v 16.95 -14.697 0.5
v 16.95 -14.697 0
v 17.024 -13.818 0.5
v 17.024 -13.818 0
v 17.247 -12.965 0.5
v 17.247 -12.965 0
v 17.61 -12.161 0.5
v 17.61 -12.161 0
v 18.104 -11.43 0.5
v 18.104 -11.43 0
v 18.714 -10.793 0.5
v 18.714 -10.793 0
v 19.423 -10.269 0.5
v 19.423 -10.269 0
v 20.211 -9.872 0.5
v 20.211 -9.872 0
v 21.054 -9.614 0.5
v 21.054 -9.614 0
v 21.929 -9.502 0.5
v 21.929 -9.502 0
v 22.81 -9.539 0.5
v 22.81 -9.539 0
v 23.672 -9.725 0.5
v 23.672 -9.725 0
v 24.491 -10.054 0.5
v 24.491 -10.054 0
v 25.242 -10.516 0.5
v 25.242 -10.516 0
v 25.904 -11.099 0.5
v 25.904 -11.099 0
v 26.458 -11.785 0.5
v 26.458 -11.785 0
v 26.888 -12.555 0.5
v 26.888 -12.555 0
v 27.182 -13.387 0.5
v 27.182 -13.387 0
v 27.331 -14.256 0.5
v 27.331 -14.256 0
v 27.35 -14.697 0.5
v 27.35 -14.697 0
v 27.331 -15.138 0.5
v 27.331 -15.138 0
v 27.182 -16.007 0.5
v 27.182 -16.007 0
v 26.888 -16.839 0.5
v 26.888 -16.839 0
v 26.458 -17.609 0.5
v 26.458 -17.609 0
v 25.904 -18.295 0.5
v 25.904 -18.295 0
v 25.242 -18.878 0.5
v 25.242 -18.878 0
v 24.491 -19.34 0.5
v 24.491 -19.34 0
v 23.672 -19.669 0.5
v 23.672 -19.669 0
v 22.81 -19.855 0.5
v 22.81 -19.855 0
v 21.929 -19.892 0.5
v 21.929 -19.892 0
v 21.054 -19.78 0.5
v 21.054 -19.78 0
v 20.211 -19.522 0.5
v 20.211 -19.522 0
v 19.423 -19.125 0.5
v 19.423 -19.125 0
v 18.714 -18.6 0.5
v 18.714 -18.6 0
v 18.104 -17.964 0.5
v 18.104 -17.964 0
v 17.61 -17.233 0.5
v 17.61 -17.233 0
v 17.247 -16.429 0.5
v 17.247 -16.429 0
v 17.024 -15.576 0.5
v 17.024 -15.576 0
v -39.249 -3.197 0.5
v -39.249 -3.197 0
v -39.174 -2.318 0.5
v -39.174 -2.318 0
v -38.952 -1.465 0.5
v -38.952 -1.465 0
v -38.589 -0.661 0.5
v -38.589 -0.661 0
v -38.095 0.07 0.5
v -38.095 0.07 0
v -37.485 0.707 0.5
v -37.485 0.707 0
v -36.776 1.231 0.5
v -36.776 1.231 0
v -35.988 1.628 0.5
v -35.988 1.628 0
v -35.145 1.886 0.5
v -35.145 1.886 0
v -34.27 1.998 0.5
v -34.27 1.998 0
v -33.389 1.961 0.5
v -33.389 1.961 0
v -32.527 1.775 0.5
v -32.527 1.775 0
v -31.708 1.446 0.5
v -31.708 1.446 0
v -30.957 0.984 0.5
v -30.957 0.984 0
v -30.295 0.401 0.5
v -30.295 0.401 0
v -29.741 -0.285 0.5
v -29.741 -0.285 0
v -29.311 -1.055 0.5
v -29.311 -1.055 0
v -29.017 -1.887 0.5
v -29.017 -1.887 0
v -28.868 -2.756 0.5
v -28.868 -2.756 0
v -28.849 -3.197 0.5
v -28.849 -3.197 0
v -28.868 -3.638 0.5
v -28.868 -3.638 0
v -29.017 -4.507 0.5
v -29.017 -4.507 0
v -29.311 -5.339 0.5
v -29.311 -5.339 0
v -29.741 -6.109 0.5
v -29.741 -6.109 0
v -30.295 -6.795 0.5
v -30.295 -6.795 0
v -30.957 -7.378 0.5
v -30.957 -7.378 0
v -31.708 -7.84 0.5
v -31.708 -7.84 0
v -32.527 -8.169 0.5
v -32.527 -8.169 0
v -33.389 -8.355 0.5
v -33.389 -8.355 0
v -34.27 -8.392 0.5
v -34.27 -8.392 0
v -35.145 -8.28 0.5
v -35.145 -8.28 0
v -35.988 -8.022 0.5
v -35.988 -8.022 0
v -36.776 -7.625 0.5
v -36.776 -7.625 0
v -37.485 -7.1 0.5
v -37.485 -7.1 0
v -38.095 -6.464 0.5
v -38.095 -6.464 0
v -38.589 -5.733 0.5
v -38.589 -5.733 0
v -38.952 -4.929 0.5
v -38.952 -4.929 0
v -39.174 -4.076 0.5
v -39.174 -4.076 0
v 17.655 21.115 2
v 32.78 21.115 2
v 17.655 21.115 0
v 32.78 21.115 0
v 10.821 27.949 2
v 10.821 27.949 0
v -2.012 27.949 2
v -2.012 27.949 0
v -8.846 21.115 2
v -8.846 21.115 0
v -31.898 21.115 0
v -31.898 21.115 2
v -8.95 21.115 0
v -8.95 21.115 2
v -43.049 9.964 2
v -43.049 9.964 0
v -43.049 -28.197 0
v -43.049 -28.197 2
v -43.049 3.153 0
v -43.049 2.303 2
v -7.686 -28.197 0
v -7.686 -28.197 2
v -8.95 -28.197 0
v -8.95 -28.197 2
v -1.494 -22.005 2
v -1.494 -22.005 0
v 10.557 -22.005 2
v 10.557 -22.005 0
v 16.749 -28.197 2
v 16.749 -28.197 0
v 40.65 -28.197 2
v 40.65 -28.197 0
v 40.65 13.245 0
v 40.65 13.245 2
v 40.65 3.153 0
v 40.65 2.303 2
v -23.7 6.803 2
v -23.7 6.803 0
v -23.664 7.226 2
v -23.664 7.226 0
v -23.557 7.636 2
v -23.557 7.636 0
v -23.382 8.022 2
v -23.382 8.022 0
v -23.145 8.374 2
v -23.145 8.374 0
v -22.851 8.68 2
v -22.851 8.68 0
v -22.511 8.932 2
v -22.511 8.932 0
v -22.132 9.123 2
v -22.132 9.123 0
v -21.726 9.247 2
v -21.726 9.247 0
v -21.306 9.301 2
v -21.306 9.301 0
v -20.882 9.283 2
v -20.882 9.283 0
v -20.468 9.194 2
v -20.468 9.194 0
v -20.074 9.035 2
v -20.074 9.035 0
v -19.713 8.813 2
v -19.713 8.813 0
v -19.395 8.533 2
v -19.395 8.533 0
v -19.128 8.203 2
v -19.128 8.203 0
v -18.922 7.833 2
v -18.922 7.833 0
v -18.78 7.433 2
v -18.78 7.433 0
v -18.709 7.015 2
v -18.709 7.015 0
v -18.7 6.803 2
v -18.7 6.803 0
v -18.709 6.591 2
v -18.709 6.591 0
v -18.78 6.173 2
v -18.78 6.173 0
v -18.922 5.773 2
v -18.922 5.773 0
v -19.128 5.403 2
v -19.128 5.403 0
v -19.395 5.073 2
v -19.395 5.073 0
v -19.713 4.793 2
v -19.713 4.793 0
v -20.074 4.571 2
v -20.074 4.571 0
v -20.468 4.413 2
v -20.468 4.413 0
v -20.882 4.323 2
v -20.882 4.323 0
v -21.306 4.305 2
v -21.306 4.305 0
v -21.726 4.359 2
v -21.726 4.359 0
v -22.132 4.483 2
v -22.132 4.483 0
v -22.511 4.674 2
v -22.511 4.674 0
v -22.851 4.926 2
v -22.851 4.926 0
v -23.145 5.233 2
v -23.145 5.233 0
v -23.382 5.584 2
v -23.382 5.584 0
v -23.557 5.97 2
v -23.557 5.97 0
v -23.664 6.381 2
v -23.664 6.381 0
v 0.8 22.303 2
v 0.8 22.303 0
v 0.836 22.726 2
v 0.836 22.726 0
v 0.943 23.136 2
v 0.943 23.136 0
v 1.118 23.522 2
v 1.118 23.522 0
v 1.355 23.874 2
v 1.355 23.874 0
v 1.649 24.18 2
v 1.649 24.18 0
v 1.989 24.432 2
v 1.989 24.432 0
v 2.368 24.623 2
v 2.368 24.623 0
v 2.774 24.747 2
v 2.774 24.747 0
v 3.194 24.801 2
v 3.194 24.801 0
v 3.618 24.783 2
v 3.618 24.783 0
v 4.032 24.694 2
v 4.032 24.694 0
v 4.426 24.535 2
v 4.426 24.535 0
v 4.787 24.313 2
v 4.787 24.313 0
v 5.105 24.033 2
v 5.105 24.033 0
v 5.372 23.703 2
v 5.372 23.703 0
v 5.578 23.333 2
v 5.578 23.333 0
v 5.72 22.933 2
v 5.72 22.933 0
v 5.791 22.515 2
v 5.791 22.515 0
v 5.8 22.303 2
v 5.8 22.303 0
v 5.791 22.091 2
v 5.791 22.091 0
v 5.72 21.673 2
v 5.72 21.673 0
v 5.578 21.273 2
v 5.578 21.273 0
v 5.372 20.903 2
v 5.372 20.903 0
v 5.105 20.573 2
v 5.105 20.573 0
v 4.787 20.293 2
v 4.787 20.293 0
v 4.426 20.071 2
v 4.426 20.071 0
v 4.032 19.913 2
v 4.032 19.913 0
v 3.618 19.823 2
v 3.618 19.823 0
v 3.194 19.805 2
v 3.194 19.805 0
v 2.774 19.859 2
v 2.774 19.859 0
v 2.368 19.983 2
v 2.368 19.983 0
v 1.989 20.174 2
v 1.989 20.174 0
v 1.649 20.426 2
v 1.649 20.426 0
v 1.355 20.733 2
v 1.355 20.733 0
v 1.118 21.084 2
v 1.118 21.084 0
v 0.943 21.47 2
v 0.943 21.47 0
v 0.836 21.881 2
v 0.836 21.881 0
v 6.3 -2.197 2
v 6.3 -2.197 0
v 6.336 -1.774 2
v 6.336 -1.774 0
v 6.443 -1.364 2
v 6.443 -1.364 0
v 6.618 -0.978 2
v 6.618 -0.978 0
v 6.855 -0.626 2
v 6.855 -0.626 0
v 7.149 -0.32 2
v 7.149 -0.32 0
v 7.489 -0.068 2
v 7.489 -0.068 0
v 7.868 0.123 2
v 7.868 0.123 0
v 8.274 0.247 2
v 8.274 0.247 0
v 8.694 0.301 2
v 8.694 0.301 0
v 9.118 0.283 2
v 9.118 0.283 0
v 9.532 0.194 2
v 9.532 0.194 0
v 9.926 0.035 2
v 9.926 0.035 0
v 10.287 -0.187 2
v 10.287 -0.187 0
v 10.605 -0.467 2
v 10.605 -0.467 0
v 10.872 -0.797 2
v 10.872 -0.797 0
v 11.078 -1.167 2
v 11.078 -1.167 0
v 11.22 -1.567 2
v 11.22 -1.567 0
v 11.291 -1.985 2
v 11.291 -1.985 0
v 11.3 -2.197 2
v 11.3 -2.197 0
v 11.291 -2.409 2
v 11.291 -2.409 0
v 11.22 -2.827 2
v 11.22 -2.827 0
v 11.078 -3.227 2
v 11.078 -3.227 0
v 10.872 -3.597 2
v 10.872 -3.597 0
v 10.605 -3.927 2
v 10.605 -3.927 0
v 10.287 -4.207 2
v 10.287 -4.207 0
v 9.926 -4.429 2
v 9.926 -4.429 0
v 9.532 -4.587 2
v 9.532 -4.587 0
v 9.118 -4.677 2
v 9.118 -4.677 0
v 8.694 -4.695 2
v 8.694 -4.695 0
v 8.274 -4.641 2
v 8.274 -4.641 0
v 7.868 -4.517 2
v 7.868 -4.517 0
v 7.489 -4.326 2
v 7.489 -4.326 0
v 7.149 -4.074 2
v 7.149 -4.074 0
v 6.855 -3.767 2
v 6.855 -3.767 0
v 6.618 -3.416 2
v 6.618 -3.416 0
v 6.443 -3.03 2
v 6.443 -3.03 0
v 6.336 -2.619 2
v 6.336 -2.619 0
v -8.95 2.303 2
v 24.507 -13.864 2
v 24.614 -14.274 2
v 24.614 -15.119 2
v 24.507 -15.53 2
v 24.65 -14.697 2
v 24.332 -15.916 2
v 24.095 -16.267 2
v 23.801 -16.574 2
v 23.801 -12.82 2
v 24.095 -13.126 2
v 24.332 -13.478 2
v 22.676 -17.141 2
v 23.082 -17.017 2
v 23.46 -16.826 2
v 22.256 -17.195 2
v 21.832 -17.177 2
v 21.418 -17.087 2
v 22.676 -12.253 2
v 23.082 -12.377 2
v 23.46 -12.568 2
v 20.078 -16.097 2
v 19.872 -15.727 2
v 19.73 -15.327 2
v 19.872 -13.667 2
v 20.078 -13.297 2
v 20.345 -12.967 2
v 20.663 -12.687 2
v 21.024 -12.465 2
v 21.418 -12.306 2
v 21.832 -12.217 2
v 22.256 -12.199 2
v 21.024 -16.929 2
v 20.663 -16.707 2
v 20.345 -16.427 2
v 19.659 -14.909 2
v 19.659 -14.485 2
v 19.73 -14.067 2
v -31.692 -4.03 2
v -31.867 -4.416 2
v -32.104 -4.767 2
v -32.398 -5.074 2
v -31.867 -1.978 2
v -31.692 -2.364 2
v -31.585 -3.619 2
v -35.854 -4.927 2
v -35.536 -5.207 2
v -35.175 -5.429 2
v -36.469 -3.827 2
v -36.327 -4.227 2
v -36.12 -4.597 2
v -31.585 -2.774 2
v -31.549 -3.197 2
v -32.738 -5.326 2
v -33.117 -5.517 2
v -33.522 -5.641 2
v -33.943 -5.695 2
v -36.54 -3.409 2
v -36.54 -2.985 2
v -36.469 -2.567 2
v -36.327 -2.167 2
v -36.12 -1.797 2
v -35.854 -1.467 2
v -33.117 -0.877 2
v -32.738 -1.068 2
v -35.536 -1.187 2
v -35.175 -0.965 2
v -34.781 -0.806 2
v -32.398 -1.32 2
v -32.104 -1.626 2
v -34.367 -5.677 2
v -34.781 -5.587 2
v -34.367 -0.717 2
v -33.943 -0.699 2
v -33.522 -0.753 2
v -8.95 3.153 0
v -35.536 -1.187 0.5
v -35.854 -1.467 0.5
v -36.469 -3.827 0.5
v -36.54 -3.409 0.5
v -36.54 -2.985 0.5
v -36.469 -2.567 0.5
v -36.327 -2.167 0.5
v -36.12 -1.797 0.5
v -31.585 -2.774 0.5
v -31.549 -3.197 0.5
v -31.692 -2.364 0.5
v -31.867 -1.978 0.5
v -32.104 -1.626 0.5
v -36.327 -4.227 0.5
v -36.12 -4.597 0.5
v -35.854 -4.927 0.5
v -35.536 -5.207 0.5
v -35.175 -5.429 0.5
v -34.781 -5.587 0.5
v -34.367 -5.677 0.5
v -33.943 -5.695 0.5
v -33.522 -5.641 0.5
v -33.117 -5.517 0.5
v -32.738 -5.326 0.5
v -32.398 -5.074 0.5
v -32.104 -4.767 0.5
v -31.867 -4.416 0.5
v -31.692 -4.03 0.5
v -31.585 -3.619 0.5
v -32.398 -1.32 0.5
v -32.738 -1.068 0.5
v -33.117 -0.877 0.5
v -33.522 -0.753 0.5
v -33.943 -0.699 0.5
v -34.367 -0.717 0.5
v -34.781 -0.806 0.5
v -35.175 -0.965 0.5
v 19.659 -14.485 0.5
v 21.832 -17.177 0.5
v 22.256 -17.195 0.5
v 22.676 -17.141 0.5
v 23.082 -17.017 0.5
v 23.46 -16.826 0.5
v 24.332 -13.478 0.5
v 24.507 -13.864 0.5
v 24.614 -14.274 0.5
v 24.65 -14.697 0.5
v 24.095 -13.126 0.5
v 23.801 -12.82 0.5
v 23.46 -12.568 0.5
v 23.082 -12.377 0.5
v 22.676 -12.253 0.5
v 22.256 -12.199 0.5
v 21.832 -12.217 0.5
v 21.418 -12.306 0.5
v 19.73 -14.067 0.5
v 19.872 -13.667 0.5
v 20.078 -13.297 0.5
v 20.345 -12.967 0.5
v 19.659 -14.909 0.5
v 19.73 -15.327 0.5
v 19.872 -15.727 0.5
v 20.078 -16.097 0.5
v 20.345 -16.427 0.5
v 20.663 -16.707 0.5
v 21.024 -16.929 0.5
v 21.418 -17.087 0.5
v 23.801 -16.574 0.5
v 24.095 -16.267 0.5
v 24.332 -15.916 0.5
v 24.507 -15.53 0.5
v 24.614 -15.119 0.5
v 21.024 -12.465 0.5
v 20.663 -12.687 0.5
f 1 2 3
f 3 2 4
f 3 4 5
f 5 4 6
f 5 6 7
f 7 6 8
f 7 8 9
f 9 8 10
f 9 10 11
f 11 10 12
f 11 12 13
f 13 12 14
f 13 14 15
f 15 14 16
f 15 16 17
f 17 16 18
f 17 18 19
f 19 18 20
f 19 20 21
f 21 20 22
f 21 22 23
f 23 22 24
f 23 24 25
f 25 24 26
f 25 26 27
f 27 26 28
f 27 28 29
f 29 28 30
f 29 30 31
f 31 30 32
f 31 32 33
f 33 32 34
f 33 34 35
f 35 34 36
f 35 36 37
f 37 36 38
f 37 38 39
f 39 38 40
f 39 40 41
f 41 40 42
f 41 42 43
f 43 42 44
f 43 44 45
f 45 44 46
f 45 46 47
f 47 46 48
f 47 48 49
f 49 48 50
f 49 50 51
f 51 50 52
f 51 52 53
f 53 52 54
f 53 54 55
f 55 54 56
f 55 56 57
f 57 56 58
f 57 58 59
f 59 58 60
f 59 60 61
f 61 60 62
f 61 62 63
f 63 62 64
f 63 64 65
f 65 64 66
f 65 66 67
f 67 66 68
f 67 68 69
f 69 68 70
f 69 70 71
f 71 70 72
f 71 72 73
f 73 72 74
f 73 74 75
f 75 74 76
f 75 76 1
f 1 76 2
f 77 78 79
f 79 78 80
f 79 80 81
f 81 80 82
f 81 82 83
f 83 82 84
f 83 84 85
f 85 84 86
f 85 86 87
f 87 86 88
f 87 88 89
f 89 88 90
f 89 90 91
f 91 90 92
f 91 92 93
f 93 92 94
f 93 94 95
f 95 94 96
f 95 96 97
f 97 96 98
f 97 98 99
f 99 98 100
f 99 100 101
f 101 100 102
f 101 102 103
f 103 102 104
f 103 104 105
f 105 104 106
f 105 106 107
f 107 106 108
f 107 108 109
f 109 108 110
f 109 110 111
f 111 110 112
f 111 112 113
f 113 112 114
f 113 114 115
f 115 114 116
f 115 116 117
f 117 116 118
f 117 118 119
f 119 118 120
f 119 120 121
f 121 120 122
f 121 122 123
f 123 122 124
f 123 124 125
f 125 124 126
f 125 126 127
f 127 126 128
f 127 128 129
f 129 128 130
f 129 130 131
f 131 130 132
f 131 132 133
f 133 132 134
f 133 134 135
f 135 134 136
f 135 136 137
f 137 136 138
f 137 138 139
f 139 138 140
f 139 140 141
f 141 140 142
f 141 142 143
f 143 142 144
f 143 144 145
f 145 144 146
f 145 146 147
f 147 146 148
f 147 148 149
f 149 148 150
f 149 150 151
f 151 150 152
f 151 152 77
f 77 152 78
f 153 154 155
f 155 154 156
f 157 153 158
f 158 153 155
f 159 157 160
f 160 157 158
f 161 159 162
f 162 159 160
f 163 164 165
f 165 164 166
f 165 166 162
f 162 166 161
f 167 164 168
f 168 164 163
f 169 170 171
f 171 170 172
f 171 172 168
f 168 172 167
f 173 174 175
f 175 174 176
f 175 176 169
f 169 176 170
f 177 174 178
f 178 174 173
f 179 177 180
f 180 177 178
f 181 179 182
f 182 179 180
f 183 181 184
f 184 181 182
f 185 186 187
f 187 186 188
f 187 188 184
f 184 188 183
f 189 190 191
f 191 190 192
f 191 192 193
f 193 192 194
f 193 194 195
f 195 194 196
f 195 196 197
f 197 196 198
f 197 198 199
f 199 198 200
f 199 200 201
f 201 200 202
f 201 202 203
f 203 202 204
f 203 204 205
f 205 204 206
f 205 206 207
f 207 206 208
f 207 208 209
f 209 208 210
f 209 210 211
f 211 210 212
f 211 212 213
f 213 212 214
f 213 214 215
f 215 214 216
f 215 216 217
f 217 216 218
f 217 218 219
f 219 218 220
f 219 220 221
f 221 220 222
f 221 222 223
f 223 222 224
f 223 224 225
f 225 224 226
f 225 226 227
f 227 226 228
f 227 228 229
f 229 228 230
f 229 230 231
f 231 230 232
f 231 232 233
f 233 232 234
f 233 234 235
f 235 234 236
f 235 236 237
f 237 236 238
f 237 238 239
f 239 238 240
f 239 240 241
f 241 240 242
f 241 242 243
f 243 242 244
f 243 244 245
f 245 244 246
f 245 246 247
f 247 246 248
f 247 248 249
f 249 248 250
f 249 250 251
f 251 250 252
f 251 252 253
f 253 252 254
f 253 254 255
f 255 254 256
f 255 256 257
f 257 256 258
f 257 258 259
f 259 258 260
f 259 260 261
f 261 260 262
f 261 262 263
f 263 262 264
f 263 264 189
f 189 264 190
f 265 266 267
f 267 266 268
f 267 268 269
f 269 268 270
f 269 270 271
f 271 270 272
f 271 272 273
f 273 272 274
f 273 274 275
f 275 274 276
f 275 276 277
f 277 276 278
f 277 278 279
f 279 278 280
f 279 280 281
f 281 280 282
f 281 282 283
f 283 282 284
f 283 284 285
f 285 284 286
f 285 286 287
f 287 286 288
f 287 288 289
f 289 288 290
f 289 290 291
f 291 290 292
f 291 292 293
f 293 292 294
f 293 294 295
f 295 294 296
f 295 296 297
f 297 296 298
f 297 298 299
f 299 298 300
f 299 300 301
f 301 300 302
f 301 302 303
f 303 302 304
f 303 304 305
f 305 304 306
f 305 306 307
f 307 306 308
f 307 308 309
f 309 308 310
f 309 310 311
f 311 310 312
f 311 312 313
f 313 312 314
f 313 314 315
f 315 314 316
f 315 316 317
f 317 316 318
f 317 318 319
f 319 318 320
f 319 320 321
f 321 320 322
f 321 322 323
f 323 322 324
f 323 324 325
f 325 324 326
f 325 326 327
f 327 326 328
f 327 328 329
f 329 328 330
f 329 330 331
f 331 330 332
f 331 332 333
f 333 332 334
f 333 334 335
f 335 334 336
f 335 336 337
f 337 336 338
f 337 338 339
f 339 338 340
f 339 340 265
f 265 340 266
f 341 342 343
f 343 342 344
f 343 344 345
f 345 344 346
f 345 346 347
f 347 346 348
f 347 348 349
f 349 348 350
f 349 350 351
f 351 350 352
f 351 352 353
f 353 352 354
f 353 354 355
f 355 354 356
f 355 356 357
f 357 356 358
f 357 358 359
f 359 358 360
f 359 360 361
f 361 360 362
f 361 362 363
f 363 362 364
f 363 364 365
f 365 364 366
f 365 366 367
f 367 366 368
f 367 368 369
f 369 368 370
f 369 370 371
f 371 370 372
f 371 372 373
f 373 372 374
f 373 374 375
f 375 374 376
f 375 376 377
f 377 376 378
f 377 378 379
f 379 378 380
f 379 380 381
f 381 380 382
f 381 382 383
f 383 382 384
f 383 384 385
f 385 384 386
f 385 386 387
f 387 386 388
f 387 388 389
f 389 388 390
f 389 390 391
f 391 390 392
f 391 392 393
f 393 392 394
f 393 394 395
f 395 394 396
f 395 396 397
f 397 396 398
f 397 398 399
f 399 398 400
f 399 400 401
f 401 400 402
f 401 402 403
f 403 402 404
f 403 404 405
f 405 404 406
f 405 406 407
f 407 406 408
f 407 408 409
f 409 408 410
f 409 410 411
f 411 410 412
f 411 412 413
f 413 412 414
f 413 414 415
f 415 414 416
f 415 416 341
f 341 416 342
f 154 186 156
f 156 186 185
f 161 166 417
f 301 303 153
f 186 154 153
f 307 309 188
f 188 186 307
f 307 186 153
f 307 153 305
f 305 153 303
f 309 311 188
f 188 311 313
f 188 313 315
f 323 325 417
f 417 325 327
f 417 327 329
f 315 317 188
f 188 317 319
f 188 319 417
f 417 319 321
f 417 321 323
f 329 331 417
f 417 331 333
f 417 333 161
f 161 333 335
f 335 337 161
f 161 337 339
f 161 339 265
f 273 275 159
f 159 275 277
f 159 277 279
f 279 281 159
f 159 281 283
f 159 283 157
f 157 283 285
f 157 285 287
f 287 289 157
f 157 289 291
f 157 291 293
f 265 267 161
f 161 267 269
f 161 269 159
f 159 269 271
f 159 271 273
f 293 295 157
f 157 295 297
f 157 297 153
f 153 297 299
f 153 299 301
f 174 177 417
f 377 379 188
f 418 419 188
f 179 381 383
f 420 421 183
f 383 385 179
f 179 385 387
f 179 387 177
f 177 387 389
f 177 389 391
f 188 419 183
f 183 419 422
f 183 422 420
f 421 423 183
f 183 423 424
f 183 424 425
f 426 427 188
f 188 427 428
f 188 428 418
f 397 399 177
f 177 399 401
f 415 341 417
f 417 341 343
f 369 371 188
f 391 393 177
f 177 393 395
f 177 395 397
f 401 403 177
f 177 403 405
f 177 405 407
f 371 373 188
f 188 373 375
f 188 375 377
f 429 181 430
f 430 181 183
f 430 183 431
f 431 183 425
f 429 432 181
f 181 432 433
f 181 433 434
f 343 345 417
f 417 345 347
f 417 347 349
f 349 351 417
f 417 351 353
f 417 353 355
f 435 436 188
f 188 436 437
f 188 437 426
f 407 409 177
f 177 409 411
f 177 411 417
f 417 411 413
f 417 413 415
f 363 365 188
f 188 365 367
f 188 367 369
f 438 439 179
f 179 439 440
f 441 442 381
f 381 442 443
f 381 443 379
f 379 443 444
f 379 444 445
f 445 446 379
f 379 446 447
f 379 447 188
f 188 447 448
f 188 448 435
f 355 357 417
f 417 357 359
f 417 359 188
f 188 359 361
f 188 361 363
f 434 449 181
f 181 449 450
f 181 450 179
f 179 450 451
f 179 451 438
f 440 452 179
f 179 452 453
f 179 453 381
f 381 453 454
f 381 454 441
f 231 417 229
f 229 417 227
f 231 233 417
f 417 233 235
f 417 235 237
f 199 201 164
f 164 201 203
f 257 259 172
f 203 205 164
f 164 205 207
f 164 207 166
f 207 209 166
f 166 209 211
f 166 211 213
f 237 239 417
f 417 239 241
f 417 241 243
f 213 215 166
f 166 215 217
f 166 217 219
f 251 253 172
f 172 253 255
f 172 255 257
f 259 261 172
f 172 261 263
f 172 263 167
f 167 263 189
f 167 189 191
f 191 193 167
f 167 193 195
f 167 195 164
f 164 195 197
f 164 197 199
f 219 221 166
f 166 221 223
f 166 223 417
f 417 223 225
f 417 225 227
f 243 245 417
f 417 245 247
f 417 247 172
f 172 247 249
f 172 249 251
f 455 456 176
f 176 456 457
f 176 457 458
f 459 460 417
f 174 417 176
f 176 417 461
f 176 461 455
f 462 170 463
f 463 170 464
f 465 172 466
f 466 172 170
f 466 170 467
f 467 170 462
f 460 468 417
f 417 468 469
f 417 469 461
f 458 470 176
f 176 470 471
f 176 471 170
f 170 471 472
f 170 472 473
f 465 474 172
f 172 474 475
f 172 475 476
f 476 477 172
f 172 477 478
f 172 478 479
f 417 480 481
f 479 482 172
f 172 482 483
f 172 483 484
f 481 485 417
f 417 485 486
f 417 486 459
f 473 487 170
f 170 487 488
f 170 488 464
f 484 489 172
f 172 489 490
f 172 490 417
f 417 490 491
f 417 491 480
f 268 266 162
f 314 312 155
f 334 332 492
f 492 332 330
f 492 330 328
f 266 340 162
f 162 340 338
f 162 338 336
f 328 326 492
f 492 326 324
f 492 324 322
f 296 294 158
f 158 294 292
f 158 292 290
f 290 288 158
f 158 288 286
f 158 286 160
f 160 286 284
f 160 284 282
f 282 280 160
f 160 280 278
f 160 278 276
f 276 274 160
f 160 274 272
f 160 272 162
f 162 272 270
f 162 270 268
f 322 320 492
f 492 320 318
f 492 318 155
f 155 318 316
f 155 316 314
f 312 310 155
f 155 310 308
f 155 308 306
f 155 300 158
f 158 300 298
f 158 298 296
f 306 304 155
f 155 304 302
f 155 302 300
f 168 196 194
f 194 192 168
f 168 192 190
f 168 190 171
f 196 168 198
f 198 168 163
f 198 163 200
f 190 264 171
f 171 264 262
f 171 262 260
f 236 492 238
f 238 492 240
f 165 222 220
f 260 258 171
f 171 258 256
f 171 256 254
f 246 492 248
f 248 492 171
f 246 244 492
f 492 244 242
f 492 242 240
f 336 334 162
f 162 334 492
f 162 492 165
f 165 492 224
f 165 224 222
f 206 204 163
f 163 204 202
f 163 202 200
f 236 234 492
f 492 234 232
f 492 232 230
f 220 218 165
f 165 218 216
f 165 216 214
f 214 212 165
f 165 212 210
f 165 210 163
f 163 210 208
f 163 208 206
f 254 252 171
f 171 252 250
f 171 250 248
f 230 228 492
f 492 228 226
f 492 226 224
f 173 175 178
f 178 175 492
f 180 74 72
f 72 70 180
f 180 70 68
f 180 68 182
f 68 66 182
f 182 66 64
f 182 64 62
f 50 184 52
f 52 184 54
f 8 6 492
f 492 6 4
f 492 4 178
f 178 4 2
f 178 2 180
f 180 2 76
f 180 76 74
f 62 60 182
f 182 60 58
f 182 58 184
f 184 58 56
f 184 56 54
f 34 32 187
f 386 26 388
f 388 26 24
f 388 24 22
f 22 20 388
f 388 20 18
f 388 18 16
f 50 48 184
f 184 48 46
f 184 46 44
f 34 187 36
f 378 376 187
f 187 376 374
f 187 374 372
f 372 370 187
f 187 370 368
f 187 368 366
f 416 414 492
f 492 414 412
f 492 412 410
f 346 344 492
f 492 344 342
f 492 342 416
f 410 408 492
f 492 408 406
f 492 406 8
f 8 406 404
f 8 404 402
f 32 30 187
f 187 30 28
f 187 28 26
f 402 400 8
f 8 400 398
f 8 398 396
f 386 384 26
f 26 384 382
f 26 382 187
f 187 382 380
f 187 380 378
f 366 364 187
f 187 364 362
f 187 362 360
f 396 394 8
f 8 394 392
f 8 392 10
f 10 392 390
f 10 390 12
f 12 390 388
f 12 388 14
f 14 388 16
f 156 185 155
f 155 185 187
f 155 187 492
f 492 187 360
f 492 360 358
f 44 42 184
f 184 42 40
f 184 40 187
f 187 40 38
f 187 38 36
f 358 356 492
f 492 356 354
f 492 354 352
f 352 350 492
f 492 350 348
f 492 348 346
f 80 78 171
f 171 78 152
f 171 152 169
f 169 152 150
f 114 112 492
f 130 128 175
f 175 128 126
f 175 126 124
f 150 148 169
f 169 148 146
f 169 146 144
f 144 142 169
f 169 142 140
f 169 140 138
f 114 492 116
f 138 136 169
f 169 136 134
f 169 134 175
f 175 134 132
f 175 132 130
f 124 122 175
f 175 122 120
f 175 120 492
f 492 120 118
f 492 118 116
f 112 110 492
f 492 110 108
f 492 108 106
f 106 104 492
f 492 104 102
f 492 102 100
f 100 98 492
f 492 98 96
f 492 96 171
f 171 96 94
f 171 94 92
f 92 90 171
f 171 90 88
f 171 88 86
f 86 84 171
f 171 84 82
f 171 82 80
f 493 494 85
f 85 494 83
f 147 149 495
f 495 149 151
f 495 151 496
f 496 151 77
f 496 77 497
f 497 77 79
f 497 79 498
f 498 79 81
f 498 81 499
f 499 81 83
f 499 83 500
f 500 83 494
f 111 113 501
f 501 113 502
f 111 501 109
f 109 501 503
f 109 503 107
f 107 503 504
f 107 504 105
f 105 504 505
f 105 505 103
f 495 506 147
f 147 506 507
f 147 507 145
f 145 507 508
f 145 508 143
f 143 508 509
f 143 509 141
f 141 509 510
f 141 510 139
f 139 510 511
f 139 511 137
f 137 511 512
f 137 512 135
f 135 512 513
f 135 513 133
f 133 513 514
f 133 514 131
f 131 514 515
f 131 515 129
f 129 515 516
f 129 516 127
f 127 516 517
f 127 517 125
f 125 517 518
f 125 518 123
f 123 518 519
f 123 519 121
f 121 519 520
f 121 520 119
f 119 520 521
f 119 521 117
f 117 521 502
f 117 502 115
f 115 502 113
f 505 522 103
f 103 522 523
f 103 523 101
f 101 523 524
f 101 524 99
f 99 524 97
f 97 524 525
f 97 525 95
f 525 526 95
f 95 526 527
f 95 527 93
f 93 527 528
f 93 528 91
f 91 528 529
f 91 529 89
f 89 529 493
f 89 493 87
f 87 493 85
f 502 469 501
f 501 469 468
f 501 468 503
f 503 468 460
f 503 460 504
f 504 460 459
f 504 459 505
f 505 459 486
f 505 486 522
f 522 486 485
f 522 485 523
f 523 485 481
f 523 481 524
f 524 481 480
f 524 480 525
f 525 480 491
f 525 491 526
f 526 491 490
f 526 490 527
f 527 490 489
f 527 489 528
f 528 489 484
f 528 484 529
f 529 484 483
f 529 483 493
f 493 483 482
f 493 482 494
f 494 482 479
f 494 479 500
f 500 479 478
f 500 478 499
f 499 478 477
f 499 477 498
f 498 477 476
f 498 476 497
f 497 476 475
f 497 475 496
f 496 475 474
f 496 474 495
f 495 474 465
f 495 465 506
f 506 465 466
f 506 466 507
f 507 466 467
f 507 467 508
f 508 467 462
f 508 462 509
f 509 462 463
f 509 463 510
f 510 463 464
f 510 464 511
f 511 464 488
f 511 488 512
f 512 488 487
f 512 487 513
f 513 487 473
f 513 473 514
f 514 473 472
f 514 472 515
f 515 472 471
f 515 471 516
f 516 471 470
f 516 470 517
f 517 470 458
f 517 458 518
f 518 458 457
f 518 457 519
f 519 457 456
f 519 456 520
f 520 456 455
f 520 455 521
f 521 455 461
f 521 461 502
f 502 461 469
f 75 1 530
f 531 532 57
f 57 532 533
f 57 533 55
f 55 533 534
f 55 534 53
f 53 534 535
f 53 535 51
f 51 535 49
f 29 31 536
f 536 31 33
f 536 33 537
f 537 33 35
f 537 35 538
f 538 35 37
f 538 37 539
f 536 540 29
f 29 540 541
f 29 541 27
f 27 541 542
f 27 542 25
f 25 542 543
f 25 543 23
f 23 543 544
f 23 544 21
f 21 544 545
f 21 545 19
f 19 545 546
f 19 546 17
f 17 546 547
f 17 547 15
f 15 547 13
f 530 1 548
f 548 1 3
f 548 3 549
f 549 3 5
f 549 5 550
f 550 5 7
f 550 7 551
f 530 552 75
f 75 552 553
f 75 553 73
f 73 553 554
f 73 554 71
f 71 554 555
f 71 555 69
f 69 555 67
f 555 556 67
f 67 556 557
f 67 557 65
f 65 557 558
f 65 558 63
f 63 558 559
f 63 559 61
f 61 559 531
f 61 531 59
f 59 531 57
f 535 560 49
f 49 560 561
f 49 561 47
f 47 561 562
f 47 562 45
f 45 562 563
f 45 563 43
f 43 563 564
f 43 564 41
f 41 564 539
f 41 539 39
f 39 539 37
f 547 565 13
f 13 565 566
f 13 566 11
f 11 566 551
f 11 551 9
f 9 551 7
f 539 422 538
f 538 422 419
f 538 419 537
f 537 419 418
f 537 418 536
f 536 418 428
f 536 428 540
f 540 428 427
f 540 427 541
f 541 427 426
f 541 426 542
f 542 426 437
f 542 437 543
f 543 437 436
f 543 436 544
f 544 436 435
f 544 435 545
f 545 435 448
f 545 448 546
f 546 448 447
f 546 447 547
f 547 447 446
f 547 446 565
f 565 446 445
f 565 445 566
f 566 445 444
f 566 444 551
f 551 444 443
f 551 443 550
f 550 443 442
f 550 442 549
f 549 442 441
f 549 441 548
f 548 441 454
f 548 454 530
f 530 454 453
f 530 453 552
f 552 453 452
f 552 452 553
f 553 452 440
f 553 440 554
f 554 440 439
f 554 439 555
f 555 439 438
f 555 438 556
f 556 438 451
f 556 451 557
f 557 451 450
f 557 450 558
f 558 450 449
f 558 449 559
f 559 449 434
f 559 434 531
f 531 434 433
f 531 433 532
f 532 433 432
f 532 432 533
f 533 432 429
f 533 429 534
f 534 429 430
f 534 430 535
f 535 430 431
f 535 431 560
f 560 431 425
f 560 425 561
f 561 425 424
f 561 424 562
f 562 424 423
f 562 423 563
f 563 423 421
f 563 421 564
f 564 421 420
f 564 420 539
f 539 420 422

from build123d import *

# Parameters (mm, degrees)
SKETCH_1_R      = 5.2
SKETCH_1_R_2    = 2.5
EXTRUDE_1_DEPTH = 2
EXTRUDE_START   = -1.5
SKETCH_3_R      = 5.2
SKETCH_3_R_2    = 2.5
EXTRUDE_3_DEPTH = 1.5


with BuildPart() as part:
    # 스케치1 → 보스-돌출1 (new body)
    with BuildSketch(Plane.XY):
        Polygon((17.655171042, 21.115026673), (32.779698935, 21.115026673), (40.649680384, 13.245045225), (40.649680384, -28.196867314), (16.748789391, -28.196867314), (10.556633431, -22.004711354), (-1.494033315, -22.004711354), (-7.686189276, -28.196867314), (-43.049187557, -28.196867314), (-43.049187557, 9.964172757), (-31.898333641, 21.115026673), (-8.845568875, 21.115026673), (-2.011604239, 27.94899131), (10.821206405, 27.94899131), align=None)
        with Locations((22.149680384, -14.696867314)):
            Circle(SKETCH_1_R, mode=Mode.SUBTRACT)
        with Locations((-34.049187557, -3.196867314)):
            Circle(SKETCH_1_R, mode=Mode.SUBTRACT)
        with Locations((8.800246413, -2.196867314)):
            Circle(SKETCH_1_R_2, mode=Mode.SUBTRACT)
        with Locations((3.300246413, 22.303132686)):
            Circle(SKETCH_1_R_2, mode=Mode.SUBTRACT)
        with Locations((-21.199753587, 6.803132686)):
            Circle(SKETCH_1_R_2, mode=Mode.SUBTRACT)
    extrude(amount=EXTRUDE_1_DEPTH)

    # 스케치3 → 보스-돌출3 (add)
    # profile 1 of 2: a face of its own
    with BuildSketch(Plane.XY.offset(2).offset(EXTRUDE_START)):
        with Locations((-34.049187557, -3.196867314)):
            Circle(SKETCH_3_R)
        with Locations((-34.049187557, -3.196867314)):
            Circle(SKETCH_3_R_2, mode=Mode.SUBTRACT)
    # profile 2 of 2: a face of its own
    with BuildSketch(Plane.XY.offset(2).offset(EXTRUDE_START)):
        with Locations((22.149680384, -14.696867314)):
            Circle(SKETCH_3_R)
        with Locations((22.149680384, -14.696867314)):
            Circle(SKETCH_3_R_2, mode=Mode.SUBTRACT)
    extrude(amount=EXTRUDE_3_DEPTH)


solid = part.part
